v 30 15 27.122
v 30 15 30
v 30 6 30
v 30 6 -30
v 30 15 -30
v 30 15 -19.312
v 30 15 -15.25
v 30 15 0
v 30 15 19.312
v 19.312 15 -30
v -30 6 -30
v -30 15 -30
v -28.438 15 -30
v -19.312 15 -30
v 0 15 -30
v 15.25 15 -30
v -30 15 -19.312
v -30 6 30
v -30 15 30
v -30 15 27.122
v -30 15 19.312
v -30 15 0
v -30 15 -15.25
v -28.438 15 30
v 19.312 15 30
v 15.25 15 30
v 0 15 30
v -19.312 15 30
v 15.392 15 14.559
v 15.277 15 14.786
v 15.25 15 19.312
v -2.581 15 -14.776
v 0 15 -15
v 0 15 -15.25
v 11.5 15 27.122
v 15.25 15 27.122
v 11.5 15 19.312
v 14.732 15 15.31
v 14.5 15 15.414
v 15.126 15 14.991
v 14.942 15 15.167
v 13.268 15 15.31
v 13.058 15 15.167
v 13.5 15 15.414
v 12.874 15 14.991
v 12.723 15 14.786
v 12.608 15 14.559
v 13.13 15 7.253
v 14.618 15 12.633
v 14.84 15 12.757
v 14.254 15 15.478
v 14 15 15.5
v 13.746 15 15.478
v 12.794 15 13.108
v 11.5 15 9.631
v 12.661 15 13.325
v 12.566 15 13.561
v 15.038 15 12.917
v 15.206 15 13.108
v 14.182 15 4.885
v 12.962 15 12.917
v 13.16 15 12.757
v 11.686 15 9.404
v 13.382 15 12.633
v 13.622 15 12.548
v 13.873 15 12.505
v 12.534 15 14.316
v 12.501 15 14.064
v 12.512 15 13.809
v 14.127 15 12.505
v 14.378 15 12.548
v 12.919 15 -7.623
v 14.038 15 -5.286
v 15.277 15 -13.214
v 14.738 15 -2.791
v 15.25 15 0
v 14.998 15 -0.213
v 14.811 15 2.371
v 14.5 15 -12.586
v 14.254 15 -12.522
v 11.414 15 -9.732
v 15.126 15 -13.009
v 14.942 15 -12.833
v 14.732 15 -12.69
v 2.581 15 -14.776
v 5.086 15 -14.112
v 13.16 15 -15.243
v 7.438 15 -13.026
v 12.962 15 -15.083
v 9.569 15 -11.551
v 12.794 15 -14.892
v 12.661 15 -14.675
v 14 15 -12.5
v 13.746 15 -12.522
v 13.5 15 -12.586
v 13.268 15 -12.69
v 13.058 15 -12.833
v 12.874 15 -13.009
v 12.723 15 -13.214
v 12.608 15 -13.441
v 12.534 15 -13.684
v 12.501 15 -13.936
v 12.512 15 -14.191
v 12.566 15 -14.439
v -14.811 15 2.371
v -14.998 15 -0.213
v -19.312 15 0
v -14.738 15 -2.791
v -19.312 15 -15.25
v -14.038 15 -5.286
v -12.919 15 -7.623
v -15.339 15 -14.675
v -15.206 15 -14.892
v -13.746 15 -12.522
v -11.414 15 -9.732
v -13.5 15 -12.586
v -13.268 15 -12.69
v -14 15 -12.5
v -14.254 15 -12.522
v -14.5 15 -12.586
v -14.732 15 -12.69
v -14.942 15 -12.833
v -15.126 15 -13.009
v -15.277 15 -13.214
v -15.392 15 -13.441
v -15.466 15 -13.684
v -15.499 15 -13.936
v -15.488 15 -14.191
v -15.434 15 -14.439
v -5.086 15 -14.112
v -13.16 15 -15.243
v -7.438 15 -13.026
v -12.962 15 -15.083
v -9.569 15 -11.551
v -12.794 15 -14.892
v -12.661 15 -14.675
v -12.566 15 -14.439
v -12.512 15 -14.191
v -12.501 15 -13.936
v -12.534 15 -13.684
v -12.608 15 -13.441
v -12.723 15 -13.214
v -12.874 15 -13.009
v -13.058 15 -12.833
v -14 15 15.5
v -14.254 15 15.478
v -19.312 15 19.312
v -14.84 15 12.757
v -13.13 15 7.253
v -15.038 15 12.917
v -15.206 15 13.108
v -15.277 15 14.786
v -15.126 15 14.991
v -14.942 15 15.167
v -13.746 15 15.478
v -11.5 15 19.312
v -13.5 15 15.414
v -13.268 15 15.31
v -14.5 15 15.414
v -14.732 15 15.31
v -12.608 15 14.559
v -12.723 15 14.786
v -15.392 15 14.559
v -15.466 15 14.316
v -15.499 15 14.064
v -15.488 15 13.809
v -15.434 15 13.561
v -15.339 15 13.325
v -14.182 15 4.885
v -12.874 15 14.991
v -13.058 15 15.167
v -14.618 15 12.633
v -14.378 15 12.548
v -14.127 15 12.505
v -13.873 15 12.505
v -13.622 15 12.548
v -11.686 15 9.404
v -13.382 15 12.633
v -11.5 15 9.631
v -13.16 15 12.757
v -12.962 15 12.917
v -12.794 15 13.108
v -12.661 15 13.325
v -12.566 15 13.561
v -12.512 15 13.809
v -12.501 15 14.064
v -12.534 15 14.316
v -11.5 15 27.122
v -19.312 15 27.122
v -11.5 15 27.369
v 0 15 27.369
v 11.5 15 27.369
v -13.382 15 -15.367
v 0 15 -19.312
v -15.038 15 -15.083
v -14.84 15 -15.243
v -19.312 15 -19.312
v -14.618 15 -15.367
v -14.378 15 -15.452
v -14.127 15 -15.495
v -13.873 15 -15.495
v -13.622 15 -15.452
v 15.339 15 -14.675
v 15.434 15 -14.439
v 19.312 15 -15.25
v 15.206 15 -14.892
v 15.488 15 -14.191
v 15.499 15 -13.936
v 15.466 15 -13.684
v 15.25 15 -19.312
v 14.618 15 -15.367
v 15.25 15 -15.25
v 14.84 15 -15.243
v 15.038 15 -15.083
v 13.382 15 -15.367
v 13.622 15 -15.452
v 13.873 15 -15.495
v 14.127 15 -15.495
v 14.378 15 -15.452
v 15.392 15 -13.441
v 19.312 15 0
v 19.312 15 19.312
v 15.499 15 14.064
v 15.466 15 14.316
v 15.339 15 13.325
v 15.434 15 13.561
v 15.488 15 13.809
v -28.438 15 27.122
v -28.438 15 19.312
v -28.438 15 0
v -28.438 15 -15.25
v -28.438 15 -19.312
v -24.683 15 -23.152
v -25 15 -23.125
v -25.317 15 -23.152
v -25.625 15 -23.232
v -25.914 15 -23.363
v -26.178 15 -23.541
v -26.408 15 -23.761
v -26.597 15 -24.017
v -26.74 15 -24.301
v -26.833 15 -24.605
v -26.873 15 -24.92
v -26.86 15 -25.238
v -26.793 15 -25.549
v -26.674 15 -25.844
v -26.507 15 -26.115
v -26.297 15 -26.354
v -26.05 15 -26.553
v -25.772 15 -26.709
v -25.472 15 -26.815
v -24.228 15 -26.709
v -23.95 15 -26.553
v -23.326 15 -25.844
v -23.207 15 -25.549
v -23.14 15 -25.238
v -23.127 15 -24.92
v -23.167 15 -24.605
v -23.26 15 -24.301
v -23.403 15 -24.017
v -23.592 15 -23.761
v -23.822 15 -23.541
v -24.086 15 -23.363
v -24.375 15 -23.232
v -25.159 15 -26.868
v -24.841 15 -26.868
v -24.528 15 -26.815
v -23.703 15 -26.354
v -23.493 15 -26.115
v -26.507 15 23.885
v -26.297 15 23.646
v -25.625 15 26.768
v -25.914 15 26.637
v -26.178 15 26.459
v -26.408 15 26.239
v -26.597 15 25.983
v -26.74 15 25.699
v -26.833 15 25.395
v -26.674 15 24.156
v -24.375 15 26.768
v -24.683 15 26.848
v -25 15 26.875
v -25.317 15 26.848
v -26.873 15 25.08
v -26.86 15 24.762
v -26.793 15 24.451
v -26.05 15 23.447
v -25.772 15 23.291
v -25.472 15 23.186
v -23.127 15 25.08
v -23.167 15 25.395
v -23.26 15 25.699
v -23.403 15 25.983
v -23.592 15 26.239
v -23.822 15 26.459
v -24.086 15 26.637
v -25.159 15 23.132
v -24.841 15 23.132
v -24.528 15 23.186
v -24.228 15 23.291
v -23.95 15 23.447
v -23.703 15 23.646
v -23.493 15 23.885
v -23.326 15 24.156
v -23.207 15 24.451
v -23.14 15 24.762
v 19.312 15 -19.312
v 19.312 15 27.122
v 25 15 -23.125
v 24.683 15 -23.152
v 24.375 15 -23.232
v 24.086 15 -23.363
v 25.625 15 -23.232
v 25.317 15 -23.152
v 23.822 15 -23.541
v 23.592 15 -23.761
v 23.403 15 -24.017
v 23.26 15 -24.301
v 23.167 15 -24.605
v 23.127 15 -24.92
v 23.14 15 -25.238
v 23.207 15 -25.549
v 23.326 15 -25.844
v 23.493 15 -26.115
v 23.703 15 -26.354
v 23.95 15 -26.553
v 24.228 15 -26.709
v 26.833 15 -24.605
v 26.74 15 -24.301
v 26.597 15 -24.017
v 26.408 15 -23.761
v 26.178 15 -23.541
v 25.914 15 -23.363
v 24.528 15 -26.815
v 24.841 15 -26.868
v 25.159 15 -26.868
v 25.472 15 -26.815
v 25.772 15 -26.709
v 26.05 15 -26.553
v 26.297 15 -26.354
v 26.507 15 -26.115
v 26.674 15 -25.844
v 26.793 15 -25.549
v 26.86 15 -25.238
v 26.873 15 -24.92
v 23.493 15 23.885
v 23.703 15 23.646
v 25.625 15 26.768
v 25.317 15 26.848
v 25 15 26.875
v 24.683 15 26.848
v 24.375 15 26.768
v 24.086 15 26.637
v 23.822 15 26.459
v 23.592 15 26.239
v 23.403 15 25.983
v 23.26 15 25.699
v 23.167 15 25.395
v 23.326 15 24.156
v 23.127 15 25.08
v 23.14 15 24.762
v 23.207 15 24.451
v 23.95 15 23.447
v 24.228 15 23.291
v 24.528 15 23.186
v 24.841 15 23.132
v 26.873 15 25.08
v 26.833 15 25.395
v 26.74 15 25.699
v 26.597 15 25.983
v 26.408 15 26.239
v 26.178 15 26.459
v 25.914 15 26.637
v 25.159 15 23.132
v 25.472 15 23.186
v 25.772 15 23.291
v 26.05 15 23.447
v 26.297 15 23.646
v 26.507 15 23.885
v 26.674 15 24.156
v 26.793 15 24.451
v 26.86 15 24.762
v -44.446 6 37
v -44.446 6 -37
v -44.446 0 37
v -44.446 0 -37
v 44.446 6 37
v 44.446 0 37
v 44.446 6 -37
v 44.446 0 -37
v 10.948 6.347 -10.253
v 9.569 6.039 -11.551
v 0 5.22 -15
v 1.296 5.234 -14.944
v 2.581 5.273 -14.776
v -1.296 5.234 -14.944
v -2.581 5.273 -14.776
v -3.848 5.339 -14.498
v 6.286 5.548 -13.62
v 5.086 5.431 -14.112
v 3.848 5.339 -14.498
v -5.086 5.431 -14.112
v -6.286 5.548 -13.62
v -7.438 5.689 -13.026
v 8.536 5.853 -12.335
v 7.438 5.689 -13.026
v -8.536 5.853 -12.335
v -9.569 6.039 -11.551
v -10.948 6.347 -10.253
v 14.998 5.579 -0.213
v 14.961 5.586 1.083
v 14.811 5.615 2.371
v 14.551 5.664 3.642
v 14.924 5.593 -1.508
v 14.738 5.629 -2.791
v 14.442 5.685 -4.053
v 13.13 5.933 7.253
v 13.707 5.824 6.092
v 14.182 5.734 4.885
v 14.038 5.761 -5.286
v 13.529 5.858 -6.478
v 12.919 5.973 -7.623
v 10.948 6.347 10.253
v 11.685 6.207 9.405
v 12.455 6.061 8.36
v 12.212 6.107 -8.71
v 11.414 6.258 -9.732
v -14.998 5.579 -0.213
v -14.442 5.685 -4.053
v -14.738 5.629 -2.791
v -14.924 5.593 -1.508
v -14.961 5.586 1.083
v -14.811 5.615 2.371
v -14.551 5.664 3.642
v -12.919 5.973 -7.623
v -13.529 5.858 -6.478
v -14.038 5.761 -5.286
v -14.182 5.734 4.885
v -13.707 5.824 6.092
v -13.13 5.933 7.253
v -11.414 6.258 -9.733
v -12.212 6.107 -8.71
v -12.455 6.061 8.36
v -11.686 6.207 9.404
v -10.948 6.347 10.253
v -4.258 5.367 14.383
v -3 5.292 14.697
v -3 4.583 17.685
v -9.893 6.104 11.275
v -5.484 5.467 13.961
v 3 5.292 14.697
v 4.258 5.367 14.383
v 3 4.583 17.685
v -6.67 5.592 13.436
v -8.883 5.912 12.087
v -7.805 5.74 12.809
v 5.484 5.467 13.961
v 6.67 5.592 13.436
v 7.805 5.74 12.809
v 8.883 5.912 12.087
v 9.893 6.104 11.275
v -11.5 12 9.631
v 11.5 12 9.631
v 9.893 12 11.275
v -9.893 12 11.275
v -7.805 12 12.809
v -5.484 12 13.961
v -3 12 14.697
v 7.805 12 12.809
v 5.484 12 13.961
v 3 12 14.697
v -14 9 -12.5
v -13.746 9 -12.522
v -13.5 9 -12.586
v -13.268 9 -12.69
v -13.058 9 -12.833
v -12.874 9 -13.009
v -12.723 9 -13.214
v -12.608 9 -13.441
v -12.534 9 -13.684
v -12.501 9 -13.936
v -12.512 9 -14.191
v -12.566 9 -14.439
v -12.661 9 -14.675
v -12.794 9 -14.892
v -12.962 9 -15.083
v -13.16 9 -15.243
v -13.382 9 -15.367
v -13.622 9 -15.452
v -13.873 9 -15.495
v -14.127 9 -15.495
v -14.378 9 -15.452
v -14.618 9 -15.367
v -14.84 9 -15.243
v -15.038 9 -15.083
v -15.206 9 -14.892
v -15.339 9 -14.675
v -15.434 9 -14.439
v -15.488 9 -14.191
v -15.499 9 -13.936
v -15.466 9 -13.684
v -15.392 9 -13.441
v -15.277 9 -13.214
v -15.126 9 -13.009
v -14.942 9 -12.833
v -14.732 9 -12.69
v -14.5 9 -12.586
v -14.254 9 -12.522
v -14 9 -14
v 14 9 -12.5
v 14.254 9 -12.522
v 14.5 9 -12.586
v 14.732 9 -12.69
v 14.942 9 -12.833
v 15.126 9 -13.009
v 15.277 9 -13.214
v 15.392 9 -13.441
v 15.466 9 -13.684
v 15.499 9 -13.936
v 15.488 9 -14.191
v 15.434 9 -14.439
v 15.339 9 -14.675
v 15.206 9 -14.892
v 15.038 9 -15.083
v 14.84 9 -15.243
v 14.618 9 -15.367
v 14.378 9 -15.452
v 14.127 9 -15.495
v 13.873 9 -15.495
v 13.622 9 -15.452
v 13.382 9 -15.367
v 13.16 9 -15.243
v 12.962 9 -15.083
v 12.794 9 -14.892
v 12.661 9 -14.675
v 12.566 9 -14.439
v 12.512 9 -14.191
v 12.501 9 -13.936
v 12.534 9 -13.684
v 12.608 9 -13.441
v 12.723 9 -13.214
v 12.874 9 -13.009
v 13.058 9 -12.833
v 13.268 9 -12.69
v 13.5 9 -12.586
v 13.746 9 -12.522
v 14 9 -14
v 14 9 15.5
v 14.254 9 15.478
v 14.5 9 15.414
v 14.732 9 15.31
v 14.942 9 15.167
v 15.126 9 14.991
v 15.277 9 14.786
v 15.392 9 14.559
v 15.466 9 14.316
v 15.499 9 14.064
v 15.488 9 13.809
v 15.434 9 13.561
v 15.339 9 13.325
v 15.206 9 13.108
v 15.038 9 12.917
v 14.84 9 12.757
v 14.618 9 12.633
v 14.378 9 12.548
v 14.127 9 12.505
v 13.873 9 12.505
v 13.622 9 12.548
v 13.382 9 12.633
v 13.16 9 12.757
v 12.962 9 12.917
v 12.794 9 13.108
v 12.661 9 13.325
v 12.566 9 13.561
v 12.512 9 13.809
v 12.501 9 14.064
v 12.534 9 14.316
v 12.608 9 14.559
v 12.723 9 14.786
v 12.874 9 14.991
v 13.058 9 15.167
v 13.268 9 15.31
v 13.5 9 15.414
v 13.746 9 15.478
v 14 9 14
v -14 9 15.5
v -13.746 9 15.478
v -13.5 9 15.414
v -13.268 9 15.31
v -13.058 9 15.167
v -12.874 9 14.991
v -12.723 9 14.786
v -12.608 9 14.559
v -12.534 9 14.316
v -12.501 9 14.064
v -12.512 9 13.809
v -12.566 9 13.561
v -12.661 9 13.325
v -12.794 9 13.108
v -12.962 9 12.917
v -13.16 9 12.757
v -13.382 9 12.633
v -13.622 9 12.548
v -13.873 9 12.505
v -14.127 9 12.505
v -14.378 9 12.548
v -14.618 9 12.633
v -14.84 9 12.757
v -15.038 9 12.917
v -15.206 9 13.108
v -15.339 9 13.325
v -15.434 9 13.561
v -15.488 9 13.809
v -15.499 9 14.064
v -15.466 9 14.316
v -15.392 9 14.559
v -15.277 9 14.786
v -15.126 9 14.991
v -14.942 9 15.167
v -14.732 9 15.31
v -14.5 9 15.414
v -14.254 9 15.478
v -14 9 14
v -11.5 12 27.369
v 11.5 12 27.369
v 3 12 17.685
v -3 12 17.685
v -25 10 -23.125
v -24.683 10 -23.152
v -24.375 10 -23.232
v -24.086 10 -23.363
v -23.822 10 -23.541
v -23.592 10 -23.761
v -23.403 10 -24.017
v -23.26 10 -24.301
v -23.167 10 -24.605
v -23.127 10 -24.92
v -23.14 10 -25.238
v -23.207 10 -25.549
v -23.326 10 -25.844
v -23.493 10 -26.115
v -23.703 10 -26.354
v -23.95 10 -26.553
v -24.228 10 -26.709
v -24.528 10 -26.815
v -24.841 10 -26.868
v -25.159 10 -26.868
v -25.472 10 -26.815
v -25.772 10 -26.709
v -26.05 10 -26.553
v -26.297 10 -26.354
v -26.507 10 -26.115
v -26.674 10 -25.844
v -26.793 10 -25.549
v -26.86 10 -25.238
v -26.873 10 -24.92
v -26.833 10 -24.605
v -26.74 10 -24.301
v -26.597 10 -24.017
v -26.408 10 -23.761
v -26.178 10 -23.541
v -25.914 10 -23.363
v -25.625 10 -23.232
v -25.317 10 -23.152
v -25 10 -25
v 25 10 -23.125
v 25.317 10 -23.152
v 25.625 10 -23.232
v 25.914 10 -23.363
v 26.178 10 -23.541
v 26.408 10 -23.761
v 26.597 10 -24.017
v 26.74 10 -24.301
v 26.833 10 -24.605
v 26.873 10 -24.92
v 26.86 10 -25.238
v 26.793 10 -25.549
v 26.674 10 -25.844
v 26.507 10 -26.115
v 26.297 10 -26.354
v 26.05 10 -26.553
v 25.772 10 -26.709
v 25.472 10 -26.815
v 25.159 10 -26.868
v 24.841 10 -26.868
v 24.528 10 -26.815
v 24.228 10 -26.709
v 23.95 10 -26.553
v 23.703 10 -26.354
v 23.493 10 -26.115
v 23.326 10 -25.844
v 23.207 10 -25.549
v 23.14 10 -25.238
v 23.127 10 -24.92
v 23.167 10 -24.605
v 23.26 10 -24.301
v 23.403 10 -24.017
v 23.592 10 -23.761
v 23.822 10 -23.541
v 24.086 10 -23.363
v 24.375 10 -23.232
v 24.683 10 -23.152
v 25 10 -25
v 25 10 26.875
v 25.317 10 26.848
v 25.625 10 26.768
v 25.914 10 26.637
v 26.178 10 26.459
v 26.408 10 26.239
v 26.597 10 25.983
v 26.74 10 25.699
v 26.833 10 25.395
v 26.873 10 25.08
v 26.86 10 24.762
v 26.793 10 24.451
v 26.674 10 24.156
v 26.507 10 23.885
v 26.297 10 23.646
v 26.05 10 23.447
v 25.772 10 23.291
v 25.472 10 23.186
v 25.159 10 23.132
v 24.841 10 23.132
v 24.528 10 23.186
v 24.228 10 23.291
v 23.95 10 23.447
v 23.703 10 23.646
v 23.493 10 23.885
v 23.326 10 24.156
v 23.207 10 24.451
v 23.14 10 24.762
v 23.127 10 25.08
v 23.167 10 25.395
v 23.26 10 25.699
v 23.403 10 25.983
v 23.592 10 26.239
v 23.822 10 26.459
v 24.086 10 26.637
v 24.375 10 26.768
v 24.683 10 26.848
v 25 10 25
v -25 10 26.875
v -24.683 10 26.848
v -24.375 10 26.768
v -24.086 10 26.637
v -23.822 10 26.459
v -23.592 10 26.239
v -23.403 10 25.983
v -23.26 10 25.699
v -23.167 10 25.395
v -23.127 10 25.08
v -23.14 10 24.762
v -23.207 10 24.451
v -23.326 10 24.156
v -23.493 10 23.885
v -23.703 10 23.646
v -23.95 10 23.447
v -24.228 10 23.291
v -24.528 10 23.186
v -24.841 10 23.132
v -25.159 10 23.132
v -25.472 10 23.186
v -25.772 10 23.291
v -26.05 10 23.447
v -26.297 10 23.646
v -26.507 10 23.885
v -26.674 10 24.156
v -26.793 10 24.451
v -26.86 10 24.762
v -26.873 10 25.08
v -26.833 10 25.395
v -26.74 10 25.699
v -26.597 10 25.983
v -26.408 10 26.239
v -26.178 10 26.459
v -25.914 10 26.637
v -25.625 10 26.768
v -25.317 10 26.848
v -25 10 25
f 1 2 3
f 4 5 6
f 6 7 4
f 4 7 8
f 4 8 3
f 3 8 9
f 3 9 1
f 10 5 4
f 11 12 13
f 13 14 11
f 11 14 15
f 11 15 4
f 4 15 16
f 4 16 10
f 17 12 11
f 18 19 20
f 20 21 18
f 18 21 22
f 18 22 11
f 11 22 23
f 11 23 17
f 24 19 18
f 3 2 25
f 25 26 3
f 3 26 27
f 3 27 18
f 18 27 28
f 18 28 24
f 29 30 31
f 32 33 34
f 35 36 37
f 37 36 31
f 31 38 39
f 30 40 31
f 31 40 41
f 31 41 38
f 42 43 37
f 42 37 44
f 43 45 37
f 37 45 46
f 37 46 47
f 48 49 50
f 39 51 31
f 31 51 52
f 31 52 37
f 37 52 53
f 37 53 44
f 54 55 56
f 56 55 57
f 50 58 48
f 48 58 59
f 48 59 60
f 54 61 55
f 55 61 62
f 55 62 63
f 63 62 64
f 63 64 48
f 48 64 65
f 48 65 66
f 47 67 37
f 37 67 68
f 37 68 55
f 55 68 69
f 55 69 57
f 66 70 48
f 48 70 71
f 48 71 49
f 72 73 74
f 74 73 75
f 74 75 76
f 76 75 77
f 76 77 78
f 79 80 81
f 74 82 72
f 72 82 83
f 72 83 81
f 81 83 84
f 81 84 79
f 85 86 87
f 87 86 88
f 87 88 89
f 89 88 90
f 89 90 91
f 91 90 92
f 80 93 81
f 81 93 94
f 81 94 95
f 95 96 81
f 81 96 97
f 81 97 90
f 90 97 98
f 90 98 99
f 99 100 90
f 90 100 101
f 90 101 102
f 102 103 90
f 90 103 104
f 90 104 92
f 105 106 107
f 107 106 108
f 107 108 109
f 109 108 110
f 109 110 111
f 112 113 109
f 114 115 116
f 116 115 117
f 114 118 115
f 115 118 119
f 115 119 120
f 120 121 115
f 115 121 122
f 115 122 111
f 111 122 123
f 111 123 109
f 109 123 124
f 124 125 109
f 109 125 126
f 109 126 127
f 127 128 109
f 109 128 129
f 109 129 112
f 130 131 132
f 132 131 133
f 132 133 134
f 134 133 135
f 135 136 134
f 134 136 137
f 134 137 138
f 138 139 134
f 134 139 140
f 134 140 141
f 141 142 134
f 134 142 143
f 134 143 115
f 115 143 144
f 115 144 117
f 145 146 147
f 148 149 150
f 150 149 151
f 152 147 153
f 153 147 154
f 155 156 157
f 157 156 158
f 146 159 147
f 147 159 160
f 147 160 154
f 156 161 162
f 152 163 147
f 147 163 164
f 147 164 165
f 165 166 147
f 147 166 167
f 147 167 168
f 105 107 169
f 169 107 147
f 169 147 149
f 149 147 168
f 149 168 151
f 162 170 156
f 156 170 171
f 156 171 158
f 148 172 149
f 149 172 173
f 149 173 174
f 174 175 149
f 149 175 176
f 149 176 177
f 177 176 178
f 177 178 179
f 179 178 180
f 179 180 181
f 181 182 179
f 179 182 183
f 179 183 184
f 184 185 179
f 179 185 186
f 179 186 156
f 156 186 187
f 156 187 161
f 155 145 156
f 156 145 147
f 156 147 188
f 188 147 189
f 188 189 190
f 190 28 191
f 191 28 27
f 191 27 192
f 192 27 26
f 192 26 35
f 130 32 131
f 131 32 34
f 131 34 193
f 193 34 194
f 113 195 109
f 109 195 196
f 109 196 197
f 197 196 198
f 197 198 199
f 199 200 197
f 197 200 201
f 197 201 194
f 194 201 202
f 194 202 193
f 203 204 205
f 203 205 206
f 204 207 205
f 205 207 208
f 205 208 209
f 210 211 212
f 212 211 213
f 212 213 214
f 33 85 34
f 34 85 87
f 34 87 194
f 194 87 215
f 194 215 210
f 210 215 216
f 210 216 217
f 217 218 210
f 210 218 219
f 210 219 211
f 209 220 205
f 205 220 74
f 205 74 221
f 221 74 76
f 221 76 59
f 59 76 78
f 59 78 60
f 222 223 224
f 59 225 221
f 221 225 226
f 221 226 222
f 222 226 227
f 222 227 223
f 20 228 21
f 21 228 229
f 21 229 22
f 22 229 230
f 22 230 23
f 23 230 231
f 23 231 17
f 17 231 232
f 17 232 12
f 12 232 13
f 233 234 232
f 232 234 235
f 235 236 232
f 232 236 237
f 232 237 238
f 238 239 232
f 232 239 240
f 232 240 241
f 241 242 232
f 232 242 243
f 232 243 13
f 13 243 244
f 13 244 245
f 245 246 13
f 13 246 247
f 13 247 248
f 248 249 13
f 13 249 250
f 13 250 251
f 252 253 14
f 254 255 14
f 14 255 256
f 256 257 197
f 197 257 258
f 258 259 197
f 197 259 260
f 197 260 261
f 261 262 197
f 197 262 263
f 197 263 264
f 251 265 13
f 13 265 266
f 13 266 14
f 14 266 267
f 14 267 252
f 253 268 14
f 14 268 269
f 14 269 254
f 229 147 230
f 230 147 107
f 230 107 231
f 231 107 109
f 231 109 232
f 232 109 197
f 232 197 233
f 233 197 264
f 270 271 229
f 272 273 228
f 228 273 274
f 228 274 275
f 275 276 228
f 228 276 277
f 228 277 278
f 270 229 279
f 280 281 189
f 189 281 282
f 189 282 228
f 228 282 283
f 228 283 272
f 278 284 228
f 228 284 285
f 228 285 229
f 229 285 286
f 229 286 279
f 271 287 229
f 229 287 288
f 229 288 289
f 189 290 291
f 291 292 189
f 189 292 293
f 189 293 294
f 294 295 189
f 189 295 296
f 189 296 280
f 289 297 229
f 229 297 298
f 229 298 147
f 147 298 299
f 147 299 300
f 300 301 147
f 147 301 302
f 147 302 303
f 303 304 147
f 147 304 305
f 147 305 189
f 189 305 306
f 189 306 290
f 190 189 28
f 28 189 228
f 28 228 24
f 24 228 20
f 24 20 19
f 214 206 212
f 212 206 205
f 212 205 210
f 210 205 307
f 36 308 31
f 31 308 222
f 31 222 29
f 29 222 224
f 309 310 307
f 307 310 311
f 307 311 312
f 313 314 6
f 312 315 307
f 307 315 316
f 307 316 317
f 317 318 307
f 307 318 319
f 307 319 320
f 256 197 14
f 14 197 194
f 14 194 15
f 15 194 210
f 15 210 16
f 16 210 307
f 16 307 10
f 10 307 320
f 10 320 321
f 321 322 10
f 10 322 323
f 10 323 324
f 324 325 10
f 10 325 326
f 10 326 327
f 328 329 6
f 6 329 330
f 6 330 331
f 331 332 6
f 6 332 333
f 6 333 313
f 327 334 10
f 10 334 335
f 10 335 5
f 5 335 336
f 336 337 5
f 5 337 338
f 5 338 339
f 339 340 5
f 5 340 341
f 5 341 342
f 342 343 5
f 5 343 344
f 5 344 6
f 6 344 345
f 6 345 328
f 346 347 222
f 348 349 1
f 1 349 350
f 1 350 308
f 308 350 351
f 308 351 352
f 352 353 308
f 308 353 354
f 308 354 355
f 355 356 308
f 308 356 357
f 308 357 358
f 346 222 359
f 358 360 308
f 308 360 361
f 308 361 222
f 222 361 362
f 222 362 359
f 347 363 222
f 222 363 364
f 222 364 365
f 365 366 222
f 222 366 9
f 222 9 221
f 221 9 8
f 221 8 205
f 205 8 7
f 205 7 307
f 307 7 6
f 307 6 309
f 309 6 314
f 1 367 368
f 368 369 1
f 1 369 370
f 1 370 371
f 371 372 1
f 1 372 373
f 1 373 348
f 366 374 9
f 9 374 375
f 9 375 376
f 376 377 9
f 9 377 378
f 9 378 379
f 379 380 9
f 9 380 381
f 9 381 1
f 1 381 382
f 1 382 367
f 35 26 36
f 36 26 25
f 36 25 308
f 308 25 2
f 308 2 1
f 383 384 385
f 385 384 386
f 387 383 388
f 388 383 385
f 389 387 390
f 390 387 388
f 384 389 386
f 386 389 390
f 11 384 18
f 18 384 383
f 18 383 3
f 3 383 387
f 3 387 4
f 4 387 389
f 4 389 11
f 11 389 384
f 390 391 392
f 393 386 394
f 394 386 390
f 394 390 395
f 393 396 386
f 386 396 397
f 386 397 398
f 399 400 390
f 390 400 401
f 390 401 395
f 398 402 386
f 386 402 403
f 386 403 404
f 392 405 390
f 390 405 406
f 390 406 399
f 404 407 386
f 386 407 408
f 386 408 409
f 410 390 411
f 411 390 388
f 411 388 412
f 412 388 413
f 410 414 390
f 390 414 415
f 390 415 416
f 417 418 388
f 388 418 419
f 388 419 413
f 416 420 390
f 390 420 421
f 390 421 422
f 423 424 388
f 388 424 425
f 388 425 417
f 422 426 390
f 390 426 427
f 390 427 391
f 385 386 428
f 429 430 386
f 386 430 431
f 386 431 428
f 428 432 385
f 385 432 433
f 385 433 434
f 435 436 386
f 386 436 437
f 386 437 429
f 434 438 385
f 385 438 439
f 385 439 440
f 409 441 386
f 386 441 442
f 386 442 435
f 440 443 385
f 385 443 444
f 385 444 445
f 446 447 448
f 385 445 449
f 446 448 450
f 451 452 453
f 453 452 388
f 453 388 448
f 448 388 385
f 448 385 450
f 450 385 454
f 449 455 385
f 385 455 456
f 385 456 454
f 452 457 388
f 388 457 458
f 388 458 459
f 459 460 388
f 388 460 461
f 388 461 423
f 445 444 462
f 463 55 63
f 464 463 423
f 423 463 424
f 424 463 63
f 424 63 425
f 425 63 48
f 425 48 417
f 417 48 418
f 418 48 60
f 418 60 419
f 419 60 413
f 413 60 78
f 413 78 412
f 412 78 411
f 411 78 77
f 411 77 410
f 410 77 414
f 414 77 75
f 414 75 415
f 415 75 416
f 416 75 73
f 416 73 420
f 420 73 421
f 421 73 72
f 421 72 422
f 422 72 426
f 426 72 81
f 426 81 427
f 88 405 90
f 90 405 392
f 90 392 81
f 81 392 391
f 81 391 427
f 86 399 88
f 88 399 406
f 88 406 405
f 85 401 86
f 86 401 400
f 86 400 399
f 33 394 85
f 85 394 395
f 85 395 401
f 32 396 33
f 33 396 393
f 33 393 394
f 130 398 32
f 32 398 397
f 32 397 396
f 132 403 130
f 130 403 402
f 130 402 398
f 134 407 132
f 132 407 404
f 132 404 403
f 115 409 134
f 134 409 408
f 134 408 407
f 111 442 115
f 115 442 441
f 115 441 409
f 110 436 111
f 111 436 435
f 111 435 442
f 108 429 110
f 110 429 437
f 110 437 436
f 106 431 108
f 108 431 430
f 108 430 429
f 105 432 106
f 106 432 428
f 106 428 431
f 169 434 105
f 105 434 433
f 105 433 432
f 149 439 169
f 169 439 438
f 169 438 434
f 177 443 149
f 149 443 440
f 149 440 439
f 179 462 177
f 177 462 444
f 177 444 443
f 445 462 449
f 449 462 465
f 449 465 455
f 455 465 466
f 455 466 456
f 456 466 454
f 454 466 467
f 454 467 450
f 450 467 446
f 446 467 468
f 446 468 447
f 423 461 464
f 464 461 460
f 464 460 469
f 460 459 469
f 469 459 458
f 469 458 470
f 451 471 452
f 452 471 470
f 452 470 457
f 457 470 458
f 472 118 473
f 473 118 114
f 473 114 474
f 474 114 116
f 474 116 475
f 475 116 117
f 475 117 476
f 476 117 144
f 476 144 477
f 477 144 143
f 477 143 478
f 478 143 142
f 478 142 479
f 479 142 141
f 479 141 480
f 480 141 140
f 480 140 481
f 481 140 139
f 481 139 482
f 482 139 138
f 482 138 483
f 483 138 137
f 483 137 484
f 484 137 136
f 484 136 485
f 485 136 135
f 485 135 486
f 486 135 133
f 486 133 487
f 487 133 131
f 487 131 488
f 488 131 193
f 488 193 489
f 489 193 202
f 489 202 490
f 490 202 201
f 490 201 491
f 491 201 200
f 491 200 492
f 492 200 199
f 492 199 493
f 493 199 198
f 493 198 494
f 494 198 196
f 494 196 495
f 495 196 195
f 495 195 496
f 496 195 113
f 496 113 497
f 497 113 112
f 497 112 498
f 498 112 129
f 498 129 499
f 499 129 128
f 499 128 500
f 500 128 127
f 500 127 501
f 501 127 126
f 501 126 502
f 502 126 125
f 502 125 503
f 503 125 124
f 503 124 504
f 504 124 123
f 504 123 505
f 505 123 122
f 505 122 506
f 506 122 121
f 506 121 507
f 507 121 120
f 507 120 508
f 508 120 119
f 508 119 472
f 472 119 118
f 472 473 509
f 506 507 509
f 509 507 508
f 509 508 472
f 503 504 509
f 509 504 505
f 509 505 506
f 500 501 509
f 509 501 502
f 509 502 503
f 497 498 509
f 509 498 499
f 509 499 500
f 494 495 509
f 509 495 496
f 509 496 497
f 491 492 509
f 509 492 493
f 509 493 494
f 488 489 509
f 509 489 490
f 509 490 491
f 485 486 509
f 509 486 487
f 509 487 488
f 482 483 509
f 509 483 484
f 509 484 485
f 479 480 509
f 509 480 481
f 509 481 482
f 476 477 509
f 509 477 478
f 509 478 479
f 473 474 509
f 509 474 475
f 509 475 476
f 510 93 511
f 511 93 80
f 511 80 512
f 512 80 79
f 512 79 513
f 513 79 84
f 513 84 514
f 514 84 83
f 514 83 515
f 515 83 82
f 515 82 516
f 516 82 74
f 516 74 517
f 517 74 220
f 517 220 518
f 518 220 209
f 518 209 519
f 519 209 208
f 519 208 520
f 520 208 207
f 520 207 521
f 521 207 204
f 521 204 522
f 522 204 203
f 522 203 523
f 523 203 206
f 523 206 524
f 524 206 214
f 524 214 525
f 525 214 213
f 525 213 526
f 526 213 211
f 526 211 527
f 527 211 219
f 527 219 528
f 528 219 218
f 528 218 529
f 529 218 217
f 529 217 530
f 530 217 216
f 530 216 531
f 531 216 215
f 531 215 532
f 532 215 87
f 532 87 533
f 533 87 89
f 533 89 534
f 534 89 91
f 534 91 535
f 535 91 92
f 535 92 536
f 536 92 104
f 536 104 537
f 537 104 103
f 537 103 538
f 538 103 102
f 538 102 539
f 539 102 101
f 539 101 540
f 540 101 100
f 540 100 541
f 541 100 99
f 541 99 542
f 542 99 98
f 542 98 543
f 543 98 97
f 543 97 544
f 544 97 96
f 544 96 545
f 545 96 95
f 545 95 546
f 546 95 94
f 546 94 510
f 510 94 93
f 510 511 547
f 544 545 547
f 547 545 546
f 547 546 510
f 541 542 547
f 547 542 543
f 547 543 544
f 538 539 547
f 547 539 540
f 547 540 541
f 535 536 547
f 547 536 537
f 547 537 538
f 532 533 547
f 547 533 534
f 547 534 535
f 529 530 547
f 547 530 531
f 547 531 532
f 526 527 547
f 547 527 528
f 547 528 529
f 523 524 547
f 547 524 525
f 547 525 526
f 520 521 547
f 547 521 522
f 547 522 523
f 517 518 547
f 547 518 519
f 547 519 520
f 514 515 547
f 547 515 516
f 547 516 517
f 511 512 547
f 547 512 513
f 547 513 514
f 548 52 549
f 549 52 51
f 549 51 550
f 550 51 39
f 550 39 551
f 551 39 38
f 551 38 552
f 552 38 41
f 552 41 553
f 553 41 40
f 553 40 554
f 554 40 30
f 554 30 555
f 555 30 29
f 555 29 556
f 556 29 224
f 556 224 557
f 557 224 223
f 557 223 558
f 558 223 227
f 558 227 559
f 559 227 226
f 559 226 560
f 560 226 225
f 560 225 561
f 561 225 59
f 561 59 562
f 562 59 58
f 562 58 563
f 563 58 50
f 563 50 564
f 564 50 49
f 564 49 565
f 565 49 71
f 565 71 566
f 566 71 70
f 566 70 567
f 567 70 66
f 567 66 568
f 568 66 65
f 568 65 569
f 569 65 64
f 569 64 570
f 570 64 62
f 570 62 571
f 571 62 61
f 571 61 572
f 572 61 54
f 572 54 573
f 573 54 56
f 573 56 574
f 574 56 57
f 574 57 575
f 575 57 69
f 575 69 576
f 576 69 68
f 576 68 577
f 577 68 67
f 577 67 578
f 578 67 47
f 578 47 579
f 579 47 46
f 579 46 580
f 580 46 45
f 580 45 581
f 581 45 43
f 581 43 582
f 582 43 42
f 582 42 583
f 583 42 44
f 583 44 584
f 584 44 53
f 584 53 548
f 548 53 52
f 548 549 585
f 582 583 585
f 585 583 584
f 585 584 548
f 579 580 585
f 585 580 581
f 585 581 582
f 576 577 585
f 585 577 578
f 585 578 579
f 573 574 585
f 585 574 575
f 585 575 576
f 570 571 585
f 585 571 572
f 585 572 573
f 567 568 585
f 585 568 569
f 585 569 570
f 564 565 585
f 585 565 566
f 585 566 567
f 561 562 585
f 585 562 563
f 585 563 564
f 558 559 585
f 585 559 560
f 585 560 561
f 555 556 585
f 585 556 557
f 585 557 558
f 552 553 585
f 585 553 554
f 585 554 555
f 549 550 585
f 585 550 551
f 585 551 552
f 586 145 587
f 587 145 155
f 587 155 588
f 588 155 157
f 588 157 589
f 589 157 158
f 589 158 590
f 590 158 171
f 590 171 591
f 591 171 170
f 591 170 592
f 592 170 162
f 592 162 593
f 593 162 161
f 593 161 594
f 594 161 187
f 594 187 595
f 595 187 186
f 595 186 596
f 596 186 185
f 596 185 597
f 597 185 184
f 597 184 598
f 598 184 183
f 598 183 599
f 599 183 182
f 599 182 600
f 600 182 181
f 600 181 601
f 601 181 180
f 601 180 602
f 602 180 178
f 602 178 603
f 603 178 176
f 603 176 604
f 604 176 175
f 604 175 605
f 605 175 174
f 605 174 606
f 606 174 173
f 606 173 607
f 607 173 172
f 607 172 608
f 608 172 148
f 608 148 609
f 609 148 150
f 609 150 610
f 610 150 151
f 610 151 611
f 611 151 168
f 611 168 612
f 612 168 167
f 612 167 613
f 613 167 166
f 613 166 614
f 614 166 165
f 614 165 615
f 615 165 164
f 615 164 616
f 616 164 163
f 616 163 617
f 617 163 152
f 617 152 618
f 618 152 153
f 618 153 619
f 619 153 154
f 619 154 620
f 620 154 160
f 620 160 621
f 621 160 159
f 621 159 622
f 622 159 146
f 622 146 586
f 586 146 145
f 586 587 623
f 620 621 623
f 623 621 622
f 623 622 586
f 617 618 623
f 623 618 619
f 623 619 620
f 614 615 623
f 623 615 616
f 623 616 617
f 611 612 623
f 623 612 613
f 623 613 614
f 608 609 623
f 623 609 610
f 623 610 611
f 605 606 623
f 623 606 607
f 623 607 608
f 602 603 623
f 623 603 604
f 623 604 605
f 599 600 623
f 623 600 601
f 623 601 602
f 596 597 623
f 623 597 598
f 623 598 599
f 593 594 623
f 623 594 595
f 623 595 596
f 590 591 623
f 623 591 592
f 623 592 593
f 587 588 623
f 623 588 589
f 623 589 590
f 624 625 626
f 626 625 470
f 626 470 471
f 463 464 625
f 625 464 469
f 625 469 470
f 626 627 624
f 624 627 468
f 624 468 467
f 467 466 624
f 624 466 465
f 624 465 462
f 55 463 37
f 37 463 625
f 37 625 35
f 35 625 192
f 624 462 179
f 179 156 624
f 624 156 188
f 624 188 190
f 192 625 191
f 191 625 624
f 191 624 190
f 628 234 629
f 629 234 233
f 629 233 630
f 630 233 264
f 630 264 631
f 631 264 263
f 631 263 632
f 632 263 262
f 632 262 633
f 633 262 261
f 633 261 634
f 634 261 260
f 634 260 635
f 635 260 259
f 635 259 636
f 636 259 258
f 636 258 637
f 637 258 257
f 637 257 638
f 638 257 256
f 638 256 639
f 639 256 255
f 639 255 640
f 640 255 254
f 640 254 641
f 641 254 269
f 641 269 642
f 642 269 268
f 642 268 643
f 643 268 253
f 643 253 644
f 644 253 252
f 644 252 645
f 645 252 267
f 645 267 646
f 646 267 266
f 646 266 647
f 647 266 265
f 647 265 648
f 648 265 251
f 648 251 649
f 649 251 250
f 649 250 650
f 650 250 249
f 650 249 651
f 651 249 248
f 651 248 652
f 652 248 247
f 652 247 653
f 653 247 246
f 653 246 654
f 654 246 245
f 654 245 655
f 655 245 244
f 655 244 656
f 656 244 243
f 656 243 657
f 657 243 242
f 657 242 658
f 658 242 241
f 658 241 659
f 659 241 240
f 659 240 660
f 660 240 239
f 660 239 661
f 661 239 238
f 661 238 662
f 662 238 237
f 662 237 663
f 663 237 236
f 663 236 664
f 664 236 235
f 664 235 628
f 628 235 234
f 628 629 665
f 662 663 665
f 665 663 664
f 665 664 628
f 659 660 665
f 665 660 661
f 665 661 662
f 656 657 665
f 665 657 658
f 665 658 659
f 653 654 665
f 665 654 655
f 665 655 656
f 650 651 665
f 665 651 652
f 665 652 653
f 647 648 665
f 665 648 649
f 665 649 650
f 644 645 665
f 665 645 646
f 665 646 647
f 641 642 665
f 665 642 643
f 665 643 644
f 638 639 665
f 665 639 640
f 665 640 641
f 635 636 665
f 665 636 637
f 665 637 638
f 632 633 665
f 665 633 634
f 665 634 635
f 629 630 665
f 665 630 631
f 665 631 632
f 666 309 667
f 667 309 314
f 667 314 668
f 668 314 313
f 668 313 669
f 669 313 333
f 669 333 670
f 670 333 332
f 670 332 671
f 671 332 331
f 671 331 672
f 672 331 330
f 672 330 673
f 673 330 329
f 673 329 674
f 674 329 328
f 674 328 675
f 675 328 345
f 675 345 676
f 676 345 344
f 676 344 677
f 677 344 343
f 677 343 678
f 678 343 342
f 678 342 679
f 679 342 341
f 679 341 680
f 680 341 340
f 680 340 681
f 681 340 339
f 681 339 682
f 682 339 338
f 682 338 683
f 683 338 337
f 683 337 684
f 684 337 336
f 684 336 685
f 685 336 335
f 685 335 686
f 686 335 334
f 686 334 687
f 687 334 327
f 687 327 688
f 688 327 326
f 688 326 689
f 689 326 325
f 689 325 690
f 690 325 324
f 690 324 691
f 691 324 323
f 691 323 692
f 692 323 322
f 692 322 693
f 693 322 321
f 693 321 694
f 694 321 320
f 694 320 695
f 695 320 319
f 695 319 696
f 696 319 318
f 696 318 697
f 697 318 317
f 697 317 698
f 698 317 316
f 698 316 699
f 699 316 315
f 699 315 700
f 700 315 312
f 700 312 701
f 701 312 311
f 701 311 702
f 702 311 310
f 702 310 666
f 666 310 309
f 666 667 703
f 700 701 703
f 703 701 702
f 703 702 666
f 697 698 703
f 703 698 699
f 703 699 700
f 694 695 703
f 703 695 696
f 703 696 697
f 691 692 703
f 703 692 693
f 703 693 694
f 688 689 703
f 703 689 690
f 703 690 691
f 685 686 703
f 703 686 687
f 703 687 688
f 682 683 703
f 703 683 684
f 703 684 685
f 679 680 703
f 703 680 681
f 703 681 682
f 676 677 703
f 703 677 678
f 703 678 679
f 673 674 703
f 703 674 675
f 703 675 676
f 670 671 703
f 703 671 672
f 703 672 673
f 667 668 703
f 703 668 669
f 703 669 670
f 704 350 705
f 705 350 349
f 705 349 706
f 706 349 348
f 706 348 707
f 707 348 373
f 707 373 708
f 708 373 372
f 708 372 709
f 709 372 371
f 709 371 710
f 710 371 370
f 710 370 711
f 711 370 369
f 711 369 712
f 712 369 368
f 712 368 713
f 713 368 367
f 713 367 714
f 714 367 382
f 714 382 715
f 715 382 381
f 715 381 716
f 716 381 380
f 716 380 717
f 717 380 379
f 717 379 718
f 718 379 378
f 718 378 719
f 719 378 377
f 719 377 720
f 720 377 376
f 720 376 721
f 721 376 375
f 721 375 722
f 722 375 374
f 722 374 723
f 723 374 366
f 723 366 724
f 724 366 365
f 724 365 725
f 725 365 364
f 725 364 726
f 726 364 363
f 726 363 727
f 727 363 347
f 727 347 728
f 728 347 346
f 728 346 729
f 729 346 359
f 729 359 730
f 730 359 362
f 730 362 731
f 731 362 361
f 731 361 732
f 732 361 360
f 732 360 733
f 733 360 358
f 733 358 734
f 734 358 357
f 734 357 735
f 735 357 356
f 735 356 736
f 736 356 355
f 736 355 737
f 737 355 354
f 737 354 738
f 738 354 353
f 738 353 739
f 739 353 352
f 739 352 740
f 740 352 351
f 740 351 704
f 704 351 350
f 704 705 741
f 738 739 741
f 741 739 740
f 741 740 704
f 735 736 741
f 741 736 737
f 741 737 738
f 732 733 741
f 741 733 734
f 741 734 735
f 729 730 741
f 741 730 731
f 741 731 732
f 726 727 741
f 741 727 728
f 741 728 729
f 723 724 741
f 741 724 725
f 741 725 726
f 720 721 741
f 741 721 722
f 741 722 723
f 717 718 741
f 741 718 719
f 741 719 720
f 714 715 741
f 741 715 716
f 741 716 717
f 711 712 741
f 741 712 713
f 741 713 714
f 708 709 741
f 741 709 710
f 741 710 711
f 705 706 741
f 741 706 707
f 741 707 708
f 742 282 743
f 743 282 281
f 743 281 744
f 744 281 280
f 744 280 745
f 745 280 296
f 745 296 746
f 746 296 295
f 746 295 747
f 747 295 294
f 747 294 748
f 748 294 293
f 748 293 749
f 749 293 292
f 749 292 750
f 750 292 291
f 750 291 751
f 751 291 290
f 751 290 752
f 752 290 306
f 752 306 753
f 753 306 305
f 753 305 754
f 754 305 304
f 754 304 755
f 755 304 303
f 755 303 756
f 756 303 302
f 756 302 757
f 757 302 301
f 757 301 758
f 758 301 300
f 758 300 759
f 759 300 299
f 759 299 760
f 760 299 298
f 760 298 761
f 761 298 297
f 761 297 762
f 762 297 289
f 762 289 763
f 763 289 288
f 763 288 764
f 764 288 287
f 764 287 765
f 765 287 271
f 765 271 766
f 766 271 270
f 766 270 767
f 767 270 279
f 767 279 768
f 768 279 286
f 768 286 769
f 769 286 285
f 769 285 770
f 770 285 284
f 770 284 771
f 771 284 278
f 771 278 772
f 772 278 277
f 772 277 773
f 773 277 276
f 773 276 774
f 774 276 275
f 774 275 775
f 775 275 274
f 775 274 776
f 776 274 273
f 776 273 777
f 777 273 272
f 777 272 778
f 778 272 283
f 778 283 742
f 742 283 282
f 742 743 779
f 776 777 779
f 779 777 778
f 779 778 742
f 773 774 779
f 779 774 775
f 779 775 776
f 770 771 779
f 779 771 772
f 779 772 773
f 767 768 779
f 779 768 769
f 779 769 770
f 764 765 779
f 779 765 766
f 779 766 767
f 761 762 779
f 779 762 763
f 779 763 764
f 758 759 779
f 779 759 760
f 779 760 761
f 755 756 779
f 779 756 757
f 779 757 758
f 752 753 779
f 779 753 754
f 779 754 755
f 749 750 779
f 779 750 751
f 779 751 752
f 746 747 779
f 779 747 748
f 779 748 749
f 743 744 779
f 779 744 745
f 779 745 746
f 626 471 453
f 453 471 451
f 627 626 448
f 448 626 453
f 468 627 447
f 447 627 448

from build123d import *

# Parameters (mm, degrees)
SKETCH1_W           = 60
SKETCH1_H           = 60
BOSS_EXTRUDE1_DEPTH = 15
SKETCH10_W          = 15
SKETCH10_H          = 15
CUT_EXTRUDE4_DEPTH  = 8
SKETCH9_W           = 88.892246252
SKETCH9_H           = 74
SKETCH9_W_2         = 60
SKETCH9_H_2         = 60
BOSS_EXTRUDE4_DEPTH = 6
SKETCH2_R           = 15
CUT_EXTRUDE5_DEPTH  = 60.744940206
SKETCH11_R          = 1.5
CUT_EXTRUDE6_DEPTH  = 6
SKETCH12_W          = 23
SKETCH12_H          = 10.738639716
CUT_EXTRUDE7_DEPTH  = 3
SKETCH13_W          = 23
SKETCH13_H          = 7
CUT_EXTRUDE8_DEPTH  = 3
SKETCH14_R          = 1.875
CUT_EXTRUDE9_DEPTH  = 5
SKETCH15_W          = 6
SKETCH15_H          = 8
CUT_EXTRUDE10_DEPTH = 60.063168554


with BuildPart() as part:
    # Sketch1 → Boss-Extrude1 (new body)
    with BuildSketch(Plane(origin=(0, 0, 0), x_dir=(1, 0, 0), z_dir=(0, 1, 0))):
        Rectangle(SKETCH1_W, SKETCH1_H)
    extrude(amount=BOSS_EXTRUDE1_DEPTH)

    # Sketch10 → Cut-Extrude4 (cut)
    with BuildSketch(Plane(origin=(0, 15, 0), x_dir=(1, 0, 0), z_dir=(0, 1, 0))):
        Rectangle(SKETCH10_W, SKETCH10_H)
    extrude(amount=-CUT_EXTRUDE4_DEPTH, mode=Mode.SUBTRACT)

    # Sketch9 → Boss-Extrude4 (add)
    with BuildSketch(Plane.XZ):
        Rectangle(SKETCH9_W, SKETCH9_H)
        Rectangle(SKETCH9_W_2, SKETCH9_H_2, mode=Mode.SUBTRACT)
    extrude(amount=-BOSS_EXTRUDE4_DEPTH)

    # Cut-Loft2: read off the stored shape, not the designer's step
    # Cut-Loft2: loft between two sections, ruled curve by curve
    cut_loft2_from = [
        Edge.make_line((-7.5, 7, -7.5), (7.5, 7, -7.5)),
        Edge.make_line((7.5, 7, -7.5), (7.5, 7, 7.5)),
        Edge.make_line((-7.5, 7, 7.5), (-7.5, 7, -7.5)),
        Edge.make_line((7.5, 7, 7.5), (-7.5, 7, 7.5)),
    ]
    cut_loft2_to = [
        Edge.make_line((-44.446123126, 0, -37), (44.446123126, 0, -37)),
        Edge.make_line((44.446123126, 0, -37), (44.446123126, 0, 37)),
        Edge.make_line((-44.446123126, 0, 37), (-44.446123126, 0, -37)),
        Edge.make_line((44.446123126, 0, 37), (-44.446123126, 0, 37)),
    ]
    cut_loft2 = Solid(Shell([*[Face.make_surface_from_curves(cut_loft2_from[k], cut_loft2_to[k]) for k in range(4)], Face(Wire(cut_loft2_from)), Face(Wire(cut_loft2_to))]))
    add(cut_loft2, mode=Mode.SUBTRACT)

    # Sketch2 → Cut-Extrude5 (cut, through all)
    with BuildSketch(Plane(origin=(0, 15, 0), x_dir=(1, 0, 0), z_dir=(0, 1, 0))):
        with Locations(Location((0, 0, 0), (0, 0, 270))):
            Circle(SKETCH2_R)
    extrude(amount=-CUT_EXTRUDE5_DEPTH, mode=Mode.SUBTRACT)

    # Sketch11 → Cut-Extrude6 (cut)
    with BuildSketch(Plane(origin=(0, 15, 0), x_dir=(1, 0, 0), z_dir=(0, 1, 0))):
        with Locations(Location((-14, 14, 0), (0, 0, 270))):
            Circle(SKETCH11_R)
        with Locations(Location((14, 14, 0), (0, 0, 270))):
            Circle(SKETCH11_R)
        with Locations(Location((14, -14, 0), (0, 0, 270))):
            Circle(SKETCH11_R)
        with Locations(Location((-14, -14, 0), (0, 0, 270))):
            Circle(SKETCH11_R)
    extrude(amount=-CUT_EXTRUDE6_DEPTH, mode=Mode.SUBTRACT)

    # Sketch12 → Cut-Extrude7 (cut)
    with BuildSketch(Plane(origin=(0, 15, 0), x_dir=(1, 0, 0), z_dir=(0, 1, 0))):
        with Locations((0, -15)):
            Rectangle(SKETCH12_W, SKETCH12_H)
    extrude(amount=-CUT_EXTRUDE7_DEPTH, mode=Mode.SUBTRACT)

    # Sketch13 → Cut-Extrude8 (cut)
    with BuildSketch(Plane(origin=(0, 15, 0), x_dir=(1, 0, 0), z_dir=(0, 1, 0))):
        with Locations((0, -23.869319858)):
            Rectangle(SKETCH13_W, SKETCH13_H)
    extrude(amount=-CUT_EXTRUDE8_DEPTH, mode=Mode.SUBTRACT)

    # Sketch14 → Cut-Extrude9 (cut)
    with BuildSketch(Plane(origin=(0, 15, 0), x_dir=(1, 0, 0), z_dir=(0, 1, 0))):
        with Locations(Location((-25, 25, 0), (0, 0, 270))):
            Circle(SKETCH14_R)
        with Locations(Location((25, 25, 0), (0, 0, 270))):
            Circle(SKETCH14_R)
        with Locations(Location((25, -25, 0), (0, 0, 270))):
            Circle(SKETCH14_R)
        with Locations(Location((-25, -25, 0), (0, 0, 270))):
            Circle(SKETCH14_R)
    extrude(amount=-CUT_EXTRUDE9_DEPTH, mode=Mode.SUBTRACT)

    # Sketch15 → Cut-Extrude10 (cut, through all)
    with BuildSketch(Plane(origin=(0, 12, 0), x_dir=(1, 0, 0), z_dir=(0, 1, 0))):
        with Locations((0, -13.684659929)):
            Rectangle(SKETCH15_W, SKETCH15_H)
    extrude(amount=-CUT_EXTRUDE10_DEPTH, mode=Mode.SUBTRACT)


solid = part.part
